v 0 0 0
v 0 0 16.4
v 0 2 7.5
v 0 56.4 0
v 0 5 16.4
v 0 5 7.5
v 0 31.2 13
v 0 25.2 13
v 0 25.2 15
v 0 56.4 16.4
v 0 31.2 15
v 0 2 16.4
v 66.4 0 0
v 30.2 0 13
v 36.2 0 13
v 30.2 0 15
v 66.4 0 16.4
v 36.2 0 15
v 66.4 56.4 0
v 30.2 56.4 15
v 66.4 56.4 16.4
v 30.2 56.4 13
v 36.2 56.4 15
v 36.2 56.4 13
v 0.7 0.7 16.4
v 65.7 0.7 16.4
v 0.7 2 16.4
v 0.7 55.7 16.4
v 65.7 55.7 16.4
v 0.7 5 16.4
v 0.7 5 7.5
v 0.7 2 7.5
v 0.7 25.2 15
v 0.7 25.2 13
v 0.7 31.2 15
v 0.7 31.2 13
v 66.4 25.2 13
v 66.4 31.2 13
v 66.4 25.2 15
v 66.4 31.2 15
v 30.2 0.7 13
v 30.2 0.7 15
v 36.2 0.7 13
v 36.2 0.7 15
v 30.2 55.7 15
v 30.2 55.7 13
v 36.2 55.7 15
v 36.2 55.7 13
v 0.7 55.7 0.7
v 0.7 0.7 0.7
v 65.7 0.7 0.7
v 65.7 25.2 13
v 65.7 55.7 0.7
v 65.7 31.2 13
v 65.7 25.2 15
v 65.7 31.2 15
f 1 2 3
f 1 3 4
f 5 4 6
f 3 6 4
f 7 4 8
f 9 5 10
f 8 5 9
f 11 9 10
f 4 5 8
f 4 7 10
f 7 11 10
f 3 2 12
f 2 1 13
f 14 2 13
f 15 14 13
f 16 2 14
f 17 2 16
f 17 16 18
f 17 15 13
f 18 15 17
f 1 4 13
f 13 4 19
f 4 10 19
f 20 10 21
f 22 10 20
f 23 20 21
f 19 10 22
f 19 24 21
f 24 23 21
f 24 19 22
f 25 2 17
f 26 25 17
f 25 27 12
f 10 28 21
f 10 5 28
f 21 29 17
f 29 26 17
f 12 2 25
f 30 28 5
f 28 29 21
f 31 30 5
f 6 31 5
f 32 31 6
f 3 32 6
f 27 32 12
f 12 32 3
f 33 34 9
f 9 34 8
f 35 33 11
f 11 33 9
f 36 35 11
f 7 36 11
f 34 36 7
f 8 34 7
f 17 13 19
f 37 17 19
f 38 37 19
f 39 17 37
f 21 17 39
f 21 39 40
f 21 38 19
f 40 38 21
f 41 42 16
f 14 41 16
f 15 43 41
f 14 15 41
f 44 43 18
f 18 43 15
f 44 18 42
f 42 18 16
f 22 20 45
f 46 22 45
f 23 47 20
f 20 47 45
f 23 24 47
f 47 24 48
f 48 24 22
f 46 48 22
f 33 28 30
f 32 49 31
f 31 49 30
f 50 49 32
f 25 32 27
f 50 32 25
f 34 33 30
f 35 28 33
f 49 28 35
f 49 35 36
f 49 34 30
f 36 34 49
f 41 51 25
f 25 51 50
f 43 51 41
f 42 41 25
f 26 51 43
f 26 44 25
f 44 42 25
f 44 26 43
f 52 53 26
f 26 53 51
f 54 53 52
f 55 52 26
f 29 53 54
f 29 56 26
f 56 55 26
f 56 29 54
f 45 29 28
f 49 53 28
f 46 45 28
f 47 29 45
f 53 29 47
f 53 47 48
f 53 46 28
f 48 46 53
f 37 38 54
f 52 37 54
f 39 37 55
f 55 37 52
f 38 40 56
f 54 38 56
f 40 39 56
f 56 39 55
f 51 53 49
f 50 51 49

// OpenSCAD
b = 55;
l = 65;
h = 15;

d = 0.7;

sb = 6;
sph = 13;
difference(){
	cube([l+2*d,b+2*d,h+2*d]);
	translate([d,d,d]) cube([l,b,h+2*d]);
	translate([-d,-sb/2+d+b/2,sph]) #cube([4*d+l,sb,2]);
	translate([-sb/2+d+l/2,-d,sph]) #cube([sb,4*d+b,2]);
	translate([-1,2,h/2]) #cube([3,3,h]);
}
